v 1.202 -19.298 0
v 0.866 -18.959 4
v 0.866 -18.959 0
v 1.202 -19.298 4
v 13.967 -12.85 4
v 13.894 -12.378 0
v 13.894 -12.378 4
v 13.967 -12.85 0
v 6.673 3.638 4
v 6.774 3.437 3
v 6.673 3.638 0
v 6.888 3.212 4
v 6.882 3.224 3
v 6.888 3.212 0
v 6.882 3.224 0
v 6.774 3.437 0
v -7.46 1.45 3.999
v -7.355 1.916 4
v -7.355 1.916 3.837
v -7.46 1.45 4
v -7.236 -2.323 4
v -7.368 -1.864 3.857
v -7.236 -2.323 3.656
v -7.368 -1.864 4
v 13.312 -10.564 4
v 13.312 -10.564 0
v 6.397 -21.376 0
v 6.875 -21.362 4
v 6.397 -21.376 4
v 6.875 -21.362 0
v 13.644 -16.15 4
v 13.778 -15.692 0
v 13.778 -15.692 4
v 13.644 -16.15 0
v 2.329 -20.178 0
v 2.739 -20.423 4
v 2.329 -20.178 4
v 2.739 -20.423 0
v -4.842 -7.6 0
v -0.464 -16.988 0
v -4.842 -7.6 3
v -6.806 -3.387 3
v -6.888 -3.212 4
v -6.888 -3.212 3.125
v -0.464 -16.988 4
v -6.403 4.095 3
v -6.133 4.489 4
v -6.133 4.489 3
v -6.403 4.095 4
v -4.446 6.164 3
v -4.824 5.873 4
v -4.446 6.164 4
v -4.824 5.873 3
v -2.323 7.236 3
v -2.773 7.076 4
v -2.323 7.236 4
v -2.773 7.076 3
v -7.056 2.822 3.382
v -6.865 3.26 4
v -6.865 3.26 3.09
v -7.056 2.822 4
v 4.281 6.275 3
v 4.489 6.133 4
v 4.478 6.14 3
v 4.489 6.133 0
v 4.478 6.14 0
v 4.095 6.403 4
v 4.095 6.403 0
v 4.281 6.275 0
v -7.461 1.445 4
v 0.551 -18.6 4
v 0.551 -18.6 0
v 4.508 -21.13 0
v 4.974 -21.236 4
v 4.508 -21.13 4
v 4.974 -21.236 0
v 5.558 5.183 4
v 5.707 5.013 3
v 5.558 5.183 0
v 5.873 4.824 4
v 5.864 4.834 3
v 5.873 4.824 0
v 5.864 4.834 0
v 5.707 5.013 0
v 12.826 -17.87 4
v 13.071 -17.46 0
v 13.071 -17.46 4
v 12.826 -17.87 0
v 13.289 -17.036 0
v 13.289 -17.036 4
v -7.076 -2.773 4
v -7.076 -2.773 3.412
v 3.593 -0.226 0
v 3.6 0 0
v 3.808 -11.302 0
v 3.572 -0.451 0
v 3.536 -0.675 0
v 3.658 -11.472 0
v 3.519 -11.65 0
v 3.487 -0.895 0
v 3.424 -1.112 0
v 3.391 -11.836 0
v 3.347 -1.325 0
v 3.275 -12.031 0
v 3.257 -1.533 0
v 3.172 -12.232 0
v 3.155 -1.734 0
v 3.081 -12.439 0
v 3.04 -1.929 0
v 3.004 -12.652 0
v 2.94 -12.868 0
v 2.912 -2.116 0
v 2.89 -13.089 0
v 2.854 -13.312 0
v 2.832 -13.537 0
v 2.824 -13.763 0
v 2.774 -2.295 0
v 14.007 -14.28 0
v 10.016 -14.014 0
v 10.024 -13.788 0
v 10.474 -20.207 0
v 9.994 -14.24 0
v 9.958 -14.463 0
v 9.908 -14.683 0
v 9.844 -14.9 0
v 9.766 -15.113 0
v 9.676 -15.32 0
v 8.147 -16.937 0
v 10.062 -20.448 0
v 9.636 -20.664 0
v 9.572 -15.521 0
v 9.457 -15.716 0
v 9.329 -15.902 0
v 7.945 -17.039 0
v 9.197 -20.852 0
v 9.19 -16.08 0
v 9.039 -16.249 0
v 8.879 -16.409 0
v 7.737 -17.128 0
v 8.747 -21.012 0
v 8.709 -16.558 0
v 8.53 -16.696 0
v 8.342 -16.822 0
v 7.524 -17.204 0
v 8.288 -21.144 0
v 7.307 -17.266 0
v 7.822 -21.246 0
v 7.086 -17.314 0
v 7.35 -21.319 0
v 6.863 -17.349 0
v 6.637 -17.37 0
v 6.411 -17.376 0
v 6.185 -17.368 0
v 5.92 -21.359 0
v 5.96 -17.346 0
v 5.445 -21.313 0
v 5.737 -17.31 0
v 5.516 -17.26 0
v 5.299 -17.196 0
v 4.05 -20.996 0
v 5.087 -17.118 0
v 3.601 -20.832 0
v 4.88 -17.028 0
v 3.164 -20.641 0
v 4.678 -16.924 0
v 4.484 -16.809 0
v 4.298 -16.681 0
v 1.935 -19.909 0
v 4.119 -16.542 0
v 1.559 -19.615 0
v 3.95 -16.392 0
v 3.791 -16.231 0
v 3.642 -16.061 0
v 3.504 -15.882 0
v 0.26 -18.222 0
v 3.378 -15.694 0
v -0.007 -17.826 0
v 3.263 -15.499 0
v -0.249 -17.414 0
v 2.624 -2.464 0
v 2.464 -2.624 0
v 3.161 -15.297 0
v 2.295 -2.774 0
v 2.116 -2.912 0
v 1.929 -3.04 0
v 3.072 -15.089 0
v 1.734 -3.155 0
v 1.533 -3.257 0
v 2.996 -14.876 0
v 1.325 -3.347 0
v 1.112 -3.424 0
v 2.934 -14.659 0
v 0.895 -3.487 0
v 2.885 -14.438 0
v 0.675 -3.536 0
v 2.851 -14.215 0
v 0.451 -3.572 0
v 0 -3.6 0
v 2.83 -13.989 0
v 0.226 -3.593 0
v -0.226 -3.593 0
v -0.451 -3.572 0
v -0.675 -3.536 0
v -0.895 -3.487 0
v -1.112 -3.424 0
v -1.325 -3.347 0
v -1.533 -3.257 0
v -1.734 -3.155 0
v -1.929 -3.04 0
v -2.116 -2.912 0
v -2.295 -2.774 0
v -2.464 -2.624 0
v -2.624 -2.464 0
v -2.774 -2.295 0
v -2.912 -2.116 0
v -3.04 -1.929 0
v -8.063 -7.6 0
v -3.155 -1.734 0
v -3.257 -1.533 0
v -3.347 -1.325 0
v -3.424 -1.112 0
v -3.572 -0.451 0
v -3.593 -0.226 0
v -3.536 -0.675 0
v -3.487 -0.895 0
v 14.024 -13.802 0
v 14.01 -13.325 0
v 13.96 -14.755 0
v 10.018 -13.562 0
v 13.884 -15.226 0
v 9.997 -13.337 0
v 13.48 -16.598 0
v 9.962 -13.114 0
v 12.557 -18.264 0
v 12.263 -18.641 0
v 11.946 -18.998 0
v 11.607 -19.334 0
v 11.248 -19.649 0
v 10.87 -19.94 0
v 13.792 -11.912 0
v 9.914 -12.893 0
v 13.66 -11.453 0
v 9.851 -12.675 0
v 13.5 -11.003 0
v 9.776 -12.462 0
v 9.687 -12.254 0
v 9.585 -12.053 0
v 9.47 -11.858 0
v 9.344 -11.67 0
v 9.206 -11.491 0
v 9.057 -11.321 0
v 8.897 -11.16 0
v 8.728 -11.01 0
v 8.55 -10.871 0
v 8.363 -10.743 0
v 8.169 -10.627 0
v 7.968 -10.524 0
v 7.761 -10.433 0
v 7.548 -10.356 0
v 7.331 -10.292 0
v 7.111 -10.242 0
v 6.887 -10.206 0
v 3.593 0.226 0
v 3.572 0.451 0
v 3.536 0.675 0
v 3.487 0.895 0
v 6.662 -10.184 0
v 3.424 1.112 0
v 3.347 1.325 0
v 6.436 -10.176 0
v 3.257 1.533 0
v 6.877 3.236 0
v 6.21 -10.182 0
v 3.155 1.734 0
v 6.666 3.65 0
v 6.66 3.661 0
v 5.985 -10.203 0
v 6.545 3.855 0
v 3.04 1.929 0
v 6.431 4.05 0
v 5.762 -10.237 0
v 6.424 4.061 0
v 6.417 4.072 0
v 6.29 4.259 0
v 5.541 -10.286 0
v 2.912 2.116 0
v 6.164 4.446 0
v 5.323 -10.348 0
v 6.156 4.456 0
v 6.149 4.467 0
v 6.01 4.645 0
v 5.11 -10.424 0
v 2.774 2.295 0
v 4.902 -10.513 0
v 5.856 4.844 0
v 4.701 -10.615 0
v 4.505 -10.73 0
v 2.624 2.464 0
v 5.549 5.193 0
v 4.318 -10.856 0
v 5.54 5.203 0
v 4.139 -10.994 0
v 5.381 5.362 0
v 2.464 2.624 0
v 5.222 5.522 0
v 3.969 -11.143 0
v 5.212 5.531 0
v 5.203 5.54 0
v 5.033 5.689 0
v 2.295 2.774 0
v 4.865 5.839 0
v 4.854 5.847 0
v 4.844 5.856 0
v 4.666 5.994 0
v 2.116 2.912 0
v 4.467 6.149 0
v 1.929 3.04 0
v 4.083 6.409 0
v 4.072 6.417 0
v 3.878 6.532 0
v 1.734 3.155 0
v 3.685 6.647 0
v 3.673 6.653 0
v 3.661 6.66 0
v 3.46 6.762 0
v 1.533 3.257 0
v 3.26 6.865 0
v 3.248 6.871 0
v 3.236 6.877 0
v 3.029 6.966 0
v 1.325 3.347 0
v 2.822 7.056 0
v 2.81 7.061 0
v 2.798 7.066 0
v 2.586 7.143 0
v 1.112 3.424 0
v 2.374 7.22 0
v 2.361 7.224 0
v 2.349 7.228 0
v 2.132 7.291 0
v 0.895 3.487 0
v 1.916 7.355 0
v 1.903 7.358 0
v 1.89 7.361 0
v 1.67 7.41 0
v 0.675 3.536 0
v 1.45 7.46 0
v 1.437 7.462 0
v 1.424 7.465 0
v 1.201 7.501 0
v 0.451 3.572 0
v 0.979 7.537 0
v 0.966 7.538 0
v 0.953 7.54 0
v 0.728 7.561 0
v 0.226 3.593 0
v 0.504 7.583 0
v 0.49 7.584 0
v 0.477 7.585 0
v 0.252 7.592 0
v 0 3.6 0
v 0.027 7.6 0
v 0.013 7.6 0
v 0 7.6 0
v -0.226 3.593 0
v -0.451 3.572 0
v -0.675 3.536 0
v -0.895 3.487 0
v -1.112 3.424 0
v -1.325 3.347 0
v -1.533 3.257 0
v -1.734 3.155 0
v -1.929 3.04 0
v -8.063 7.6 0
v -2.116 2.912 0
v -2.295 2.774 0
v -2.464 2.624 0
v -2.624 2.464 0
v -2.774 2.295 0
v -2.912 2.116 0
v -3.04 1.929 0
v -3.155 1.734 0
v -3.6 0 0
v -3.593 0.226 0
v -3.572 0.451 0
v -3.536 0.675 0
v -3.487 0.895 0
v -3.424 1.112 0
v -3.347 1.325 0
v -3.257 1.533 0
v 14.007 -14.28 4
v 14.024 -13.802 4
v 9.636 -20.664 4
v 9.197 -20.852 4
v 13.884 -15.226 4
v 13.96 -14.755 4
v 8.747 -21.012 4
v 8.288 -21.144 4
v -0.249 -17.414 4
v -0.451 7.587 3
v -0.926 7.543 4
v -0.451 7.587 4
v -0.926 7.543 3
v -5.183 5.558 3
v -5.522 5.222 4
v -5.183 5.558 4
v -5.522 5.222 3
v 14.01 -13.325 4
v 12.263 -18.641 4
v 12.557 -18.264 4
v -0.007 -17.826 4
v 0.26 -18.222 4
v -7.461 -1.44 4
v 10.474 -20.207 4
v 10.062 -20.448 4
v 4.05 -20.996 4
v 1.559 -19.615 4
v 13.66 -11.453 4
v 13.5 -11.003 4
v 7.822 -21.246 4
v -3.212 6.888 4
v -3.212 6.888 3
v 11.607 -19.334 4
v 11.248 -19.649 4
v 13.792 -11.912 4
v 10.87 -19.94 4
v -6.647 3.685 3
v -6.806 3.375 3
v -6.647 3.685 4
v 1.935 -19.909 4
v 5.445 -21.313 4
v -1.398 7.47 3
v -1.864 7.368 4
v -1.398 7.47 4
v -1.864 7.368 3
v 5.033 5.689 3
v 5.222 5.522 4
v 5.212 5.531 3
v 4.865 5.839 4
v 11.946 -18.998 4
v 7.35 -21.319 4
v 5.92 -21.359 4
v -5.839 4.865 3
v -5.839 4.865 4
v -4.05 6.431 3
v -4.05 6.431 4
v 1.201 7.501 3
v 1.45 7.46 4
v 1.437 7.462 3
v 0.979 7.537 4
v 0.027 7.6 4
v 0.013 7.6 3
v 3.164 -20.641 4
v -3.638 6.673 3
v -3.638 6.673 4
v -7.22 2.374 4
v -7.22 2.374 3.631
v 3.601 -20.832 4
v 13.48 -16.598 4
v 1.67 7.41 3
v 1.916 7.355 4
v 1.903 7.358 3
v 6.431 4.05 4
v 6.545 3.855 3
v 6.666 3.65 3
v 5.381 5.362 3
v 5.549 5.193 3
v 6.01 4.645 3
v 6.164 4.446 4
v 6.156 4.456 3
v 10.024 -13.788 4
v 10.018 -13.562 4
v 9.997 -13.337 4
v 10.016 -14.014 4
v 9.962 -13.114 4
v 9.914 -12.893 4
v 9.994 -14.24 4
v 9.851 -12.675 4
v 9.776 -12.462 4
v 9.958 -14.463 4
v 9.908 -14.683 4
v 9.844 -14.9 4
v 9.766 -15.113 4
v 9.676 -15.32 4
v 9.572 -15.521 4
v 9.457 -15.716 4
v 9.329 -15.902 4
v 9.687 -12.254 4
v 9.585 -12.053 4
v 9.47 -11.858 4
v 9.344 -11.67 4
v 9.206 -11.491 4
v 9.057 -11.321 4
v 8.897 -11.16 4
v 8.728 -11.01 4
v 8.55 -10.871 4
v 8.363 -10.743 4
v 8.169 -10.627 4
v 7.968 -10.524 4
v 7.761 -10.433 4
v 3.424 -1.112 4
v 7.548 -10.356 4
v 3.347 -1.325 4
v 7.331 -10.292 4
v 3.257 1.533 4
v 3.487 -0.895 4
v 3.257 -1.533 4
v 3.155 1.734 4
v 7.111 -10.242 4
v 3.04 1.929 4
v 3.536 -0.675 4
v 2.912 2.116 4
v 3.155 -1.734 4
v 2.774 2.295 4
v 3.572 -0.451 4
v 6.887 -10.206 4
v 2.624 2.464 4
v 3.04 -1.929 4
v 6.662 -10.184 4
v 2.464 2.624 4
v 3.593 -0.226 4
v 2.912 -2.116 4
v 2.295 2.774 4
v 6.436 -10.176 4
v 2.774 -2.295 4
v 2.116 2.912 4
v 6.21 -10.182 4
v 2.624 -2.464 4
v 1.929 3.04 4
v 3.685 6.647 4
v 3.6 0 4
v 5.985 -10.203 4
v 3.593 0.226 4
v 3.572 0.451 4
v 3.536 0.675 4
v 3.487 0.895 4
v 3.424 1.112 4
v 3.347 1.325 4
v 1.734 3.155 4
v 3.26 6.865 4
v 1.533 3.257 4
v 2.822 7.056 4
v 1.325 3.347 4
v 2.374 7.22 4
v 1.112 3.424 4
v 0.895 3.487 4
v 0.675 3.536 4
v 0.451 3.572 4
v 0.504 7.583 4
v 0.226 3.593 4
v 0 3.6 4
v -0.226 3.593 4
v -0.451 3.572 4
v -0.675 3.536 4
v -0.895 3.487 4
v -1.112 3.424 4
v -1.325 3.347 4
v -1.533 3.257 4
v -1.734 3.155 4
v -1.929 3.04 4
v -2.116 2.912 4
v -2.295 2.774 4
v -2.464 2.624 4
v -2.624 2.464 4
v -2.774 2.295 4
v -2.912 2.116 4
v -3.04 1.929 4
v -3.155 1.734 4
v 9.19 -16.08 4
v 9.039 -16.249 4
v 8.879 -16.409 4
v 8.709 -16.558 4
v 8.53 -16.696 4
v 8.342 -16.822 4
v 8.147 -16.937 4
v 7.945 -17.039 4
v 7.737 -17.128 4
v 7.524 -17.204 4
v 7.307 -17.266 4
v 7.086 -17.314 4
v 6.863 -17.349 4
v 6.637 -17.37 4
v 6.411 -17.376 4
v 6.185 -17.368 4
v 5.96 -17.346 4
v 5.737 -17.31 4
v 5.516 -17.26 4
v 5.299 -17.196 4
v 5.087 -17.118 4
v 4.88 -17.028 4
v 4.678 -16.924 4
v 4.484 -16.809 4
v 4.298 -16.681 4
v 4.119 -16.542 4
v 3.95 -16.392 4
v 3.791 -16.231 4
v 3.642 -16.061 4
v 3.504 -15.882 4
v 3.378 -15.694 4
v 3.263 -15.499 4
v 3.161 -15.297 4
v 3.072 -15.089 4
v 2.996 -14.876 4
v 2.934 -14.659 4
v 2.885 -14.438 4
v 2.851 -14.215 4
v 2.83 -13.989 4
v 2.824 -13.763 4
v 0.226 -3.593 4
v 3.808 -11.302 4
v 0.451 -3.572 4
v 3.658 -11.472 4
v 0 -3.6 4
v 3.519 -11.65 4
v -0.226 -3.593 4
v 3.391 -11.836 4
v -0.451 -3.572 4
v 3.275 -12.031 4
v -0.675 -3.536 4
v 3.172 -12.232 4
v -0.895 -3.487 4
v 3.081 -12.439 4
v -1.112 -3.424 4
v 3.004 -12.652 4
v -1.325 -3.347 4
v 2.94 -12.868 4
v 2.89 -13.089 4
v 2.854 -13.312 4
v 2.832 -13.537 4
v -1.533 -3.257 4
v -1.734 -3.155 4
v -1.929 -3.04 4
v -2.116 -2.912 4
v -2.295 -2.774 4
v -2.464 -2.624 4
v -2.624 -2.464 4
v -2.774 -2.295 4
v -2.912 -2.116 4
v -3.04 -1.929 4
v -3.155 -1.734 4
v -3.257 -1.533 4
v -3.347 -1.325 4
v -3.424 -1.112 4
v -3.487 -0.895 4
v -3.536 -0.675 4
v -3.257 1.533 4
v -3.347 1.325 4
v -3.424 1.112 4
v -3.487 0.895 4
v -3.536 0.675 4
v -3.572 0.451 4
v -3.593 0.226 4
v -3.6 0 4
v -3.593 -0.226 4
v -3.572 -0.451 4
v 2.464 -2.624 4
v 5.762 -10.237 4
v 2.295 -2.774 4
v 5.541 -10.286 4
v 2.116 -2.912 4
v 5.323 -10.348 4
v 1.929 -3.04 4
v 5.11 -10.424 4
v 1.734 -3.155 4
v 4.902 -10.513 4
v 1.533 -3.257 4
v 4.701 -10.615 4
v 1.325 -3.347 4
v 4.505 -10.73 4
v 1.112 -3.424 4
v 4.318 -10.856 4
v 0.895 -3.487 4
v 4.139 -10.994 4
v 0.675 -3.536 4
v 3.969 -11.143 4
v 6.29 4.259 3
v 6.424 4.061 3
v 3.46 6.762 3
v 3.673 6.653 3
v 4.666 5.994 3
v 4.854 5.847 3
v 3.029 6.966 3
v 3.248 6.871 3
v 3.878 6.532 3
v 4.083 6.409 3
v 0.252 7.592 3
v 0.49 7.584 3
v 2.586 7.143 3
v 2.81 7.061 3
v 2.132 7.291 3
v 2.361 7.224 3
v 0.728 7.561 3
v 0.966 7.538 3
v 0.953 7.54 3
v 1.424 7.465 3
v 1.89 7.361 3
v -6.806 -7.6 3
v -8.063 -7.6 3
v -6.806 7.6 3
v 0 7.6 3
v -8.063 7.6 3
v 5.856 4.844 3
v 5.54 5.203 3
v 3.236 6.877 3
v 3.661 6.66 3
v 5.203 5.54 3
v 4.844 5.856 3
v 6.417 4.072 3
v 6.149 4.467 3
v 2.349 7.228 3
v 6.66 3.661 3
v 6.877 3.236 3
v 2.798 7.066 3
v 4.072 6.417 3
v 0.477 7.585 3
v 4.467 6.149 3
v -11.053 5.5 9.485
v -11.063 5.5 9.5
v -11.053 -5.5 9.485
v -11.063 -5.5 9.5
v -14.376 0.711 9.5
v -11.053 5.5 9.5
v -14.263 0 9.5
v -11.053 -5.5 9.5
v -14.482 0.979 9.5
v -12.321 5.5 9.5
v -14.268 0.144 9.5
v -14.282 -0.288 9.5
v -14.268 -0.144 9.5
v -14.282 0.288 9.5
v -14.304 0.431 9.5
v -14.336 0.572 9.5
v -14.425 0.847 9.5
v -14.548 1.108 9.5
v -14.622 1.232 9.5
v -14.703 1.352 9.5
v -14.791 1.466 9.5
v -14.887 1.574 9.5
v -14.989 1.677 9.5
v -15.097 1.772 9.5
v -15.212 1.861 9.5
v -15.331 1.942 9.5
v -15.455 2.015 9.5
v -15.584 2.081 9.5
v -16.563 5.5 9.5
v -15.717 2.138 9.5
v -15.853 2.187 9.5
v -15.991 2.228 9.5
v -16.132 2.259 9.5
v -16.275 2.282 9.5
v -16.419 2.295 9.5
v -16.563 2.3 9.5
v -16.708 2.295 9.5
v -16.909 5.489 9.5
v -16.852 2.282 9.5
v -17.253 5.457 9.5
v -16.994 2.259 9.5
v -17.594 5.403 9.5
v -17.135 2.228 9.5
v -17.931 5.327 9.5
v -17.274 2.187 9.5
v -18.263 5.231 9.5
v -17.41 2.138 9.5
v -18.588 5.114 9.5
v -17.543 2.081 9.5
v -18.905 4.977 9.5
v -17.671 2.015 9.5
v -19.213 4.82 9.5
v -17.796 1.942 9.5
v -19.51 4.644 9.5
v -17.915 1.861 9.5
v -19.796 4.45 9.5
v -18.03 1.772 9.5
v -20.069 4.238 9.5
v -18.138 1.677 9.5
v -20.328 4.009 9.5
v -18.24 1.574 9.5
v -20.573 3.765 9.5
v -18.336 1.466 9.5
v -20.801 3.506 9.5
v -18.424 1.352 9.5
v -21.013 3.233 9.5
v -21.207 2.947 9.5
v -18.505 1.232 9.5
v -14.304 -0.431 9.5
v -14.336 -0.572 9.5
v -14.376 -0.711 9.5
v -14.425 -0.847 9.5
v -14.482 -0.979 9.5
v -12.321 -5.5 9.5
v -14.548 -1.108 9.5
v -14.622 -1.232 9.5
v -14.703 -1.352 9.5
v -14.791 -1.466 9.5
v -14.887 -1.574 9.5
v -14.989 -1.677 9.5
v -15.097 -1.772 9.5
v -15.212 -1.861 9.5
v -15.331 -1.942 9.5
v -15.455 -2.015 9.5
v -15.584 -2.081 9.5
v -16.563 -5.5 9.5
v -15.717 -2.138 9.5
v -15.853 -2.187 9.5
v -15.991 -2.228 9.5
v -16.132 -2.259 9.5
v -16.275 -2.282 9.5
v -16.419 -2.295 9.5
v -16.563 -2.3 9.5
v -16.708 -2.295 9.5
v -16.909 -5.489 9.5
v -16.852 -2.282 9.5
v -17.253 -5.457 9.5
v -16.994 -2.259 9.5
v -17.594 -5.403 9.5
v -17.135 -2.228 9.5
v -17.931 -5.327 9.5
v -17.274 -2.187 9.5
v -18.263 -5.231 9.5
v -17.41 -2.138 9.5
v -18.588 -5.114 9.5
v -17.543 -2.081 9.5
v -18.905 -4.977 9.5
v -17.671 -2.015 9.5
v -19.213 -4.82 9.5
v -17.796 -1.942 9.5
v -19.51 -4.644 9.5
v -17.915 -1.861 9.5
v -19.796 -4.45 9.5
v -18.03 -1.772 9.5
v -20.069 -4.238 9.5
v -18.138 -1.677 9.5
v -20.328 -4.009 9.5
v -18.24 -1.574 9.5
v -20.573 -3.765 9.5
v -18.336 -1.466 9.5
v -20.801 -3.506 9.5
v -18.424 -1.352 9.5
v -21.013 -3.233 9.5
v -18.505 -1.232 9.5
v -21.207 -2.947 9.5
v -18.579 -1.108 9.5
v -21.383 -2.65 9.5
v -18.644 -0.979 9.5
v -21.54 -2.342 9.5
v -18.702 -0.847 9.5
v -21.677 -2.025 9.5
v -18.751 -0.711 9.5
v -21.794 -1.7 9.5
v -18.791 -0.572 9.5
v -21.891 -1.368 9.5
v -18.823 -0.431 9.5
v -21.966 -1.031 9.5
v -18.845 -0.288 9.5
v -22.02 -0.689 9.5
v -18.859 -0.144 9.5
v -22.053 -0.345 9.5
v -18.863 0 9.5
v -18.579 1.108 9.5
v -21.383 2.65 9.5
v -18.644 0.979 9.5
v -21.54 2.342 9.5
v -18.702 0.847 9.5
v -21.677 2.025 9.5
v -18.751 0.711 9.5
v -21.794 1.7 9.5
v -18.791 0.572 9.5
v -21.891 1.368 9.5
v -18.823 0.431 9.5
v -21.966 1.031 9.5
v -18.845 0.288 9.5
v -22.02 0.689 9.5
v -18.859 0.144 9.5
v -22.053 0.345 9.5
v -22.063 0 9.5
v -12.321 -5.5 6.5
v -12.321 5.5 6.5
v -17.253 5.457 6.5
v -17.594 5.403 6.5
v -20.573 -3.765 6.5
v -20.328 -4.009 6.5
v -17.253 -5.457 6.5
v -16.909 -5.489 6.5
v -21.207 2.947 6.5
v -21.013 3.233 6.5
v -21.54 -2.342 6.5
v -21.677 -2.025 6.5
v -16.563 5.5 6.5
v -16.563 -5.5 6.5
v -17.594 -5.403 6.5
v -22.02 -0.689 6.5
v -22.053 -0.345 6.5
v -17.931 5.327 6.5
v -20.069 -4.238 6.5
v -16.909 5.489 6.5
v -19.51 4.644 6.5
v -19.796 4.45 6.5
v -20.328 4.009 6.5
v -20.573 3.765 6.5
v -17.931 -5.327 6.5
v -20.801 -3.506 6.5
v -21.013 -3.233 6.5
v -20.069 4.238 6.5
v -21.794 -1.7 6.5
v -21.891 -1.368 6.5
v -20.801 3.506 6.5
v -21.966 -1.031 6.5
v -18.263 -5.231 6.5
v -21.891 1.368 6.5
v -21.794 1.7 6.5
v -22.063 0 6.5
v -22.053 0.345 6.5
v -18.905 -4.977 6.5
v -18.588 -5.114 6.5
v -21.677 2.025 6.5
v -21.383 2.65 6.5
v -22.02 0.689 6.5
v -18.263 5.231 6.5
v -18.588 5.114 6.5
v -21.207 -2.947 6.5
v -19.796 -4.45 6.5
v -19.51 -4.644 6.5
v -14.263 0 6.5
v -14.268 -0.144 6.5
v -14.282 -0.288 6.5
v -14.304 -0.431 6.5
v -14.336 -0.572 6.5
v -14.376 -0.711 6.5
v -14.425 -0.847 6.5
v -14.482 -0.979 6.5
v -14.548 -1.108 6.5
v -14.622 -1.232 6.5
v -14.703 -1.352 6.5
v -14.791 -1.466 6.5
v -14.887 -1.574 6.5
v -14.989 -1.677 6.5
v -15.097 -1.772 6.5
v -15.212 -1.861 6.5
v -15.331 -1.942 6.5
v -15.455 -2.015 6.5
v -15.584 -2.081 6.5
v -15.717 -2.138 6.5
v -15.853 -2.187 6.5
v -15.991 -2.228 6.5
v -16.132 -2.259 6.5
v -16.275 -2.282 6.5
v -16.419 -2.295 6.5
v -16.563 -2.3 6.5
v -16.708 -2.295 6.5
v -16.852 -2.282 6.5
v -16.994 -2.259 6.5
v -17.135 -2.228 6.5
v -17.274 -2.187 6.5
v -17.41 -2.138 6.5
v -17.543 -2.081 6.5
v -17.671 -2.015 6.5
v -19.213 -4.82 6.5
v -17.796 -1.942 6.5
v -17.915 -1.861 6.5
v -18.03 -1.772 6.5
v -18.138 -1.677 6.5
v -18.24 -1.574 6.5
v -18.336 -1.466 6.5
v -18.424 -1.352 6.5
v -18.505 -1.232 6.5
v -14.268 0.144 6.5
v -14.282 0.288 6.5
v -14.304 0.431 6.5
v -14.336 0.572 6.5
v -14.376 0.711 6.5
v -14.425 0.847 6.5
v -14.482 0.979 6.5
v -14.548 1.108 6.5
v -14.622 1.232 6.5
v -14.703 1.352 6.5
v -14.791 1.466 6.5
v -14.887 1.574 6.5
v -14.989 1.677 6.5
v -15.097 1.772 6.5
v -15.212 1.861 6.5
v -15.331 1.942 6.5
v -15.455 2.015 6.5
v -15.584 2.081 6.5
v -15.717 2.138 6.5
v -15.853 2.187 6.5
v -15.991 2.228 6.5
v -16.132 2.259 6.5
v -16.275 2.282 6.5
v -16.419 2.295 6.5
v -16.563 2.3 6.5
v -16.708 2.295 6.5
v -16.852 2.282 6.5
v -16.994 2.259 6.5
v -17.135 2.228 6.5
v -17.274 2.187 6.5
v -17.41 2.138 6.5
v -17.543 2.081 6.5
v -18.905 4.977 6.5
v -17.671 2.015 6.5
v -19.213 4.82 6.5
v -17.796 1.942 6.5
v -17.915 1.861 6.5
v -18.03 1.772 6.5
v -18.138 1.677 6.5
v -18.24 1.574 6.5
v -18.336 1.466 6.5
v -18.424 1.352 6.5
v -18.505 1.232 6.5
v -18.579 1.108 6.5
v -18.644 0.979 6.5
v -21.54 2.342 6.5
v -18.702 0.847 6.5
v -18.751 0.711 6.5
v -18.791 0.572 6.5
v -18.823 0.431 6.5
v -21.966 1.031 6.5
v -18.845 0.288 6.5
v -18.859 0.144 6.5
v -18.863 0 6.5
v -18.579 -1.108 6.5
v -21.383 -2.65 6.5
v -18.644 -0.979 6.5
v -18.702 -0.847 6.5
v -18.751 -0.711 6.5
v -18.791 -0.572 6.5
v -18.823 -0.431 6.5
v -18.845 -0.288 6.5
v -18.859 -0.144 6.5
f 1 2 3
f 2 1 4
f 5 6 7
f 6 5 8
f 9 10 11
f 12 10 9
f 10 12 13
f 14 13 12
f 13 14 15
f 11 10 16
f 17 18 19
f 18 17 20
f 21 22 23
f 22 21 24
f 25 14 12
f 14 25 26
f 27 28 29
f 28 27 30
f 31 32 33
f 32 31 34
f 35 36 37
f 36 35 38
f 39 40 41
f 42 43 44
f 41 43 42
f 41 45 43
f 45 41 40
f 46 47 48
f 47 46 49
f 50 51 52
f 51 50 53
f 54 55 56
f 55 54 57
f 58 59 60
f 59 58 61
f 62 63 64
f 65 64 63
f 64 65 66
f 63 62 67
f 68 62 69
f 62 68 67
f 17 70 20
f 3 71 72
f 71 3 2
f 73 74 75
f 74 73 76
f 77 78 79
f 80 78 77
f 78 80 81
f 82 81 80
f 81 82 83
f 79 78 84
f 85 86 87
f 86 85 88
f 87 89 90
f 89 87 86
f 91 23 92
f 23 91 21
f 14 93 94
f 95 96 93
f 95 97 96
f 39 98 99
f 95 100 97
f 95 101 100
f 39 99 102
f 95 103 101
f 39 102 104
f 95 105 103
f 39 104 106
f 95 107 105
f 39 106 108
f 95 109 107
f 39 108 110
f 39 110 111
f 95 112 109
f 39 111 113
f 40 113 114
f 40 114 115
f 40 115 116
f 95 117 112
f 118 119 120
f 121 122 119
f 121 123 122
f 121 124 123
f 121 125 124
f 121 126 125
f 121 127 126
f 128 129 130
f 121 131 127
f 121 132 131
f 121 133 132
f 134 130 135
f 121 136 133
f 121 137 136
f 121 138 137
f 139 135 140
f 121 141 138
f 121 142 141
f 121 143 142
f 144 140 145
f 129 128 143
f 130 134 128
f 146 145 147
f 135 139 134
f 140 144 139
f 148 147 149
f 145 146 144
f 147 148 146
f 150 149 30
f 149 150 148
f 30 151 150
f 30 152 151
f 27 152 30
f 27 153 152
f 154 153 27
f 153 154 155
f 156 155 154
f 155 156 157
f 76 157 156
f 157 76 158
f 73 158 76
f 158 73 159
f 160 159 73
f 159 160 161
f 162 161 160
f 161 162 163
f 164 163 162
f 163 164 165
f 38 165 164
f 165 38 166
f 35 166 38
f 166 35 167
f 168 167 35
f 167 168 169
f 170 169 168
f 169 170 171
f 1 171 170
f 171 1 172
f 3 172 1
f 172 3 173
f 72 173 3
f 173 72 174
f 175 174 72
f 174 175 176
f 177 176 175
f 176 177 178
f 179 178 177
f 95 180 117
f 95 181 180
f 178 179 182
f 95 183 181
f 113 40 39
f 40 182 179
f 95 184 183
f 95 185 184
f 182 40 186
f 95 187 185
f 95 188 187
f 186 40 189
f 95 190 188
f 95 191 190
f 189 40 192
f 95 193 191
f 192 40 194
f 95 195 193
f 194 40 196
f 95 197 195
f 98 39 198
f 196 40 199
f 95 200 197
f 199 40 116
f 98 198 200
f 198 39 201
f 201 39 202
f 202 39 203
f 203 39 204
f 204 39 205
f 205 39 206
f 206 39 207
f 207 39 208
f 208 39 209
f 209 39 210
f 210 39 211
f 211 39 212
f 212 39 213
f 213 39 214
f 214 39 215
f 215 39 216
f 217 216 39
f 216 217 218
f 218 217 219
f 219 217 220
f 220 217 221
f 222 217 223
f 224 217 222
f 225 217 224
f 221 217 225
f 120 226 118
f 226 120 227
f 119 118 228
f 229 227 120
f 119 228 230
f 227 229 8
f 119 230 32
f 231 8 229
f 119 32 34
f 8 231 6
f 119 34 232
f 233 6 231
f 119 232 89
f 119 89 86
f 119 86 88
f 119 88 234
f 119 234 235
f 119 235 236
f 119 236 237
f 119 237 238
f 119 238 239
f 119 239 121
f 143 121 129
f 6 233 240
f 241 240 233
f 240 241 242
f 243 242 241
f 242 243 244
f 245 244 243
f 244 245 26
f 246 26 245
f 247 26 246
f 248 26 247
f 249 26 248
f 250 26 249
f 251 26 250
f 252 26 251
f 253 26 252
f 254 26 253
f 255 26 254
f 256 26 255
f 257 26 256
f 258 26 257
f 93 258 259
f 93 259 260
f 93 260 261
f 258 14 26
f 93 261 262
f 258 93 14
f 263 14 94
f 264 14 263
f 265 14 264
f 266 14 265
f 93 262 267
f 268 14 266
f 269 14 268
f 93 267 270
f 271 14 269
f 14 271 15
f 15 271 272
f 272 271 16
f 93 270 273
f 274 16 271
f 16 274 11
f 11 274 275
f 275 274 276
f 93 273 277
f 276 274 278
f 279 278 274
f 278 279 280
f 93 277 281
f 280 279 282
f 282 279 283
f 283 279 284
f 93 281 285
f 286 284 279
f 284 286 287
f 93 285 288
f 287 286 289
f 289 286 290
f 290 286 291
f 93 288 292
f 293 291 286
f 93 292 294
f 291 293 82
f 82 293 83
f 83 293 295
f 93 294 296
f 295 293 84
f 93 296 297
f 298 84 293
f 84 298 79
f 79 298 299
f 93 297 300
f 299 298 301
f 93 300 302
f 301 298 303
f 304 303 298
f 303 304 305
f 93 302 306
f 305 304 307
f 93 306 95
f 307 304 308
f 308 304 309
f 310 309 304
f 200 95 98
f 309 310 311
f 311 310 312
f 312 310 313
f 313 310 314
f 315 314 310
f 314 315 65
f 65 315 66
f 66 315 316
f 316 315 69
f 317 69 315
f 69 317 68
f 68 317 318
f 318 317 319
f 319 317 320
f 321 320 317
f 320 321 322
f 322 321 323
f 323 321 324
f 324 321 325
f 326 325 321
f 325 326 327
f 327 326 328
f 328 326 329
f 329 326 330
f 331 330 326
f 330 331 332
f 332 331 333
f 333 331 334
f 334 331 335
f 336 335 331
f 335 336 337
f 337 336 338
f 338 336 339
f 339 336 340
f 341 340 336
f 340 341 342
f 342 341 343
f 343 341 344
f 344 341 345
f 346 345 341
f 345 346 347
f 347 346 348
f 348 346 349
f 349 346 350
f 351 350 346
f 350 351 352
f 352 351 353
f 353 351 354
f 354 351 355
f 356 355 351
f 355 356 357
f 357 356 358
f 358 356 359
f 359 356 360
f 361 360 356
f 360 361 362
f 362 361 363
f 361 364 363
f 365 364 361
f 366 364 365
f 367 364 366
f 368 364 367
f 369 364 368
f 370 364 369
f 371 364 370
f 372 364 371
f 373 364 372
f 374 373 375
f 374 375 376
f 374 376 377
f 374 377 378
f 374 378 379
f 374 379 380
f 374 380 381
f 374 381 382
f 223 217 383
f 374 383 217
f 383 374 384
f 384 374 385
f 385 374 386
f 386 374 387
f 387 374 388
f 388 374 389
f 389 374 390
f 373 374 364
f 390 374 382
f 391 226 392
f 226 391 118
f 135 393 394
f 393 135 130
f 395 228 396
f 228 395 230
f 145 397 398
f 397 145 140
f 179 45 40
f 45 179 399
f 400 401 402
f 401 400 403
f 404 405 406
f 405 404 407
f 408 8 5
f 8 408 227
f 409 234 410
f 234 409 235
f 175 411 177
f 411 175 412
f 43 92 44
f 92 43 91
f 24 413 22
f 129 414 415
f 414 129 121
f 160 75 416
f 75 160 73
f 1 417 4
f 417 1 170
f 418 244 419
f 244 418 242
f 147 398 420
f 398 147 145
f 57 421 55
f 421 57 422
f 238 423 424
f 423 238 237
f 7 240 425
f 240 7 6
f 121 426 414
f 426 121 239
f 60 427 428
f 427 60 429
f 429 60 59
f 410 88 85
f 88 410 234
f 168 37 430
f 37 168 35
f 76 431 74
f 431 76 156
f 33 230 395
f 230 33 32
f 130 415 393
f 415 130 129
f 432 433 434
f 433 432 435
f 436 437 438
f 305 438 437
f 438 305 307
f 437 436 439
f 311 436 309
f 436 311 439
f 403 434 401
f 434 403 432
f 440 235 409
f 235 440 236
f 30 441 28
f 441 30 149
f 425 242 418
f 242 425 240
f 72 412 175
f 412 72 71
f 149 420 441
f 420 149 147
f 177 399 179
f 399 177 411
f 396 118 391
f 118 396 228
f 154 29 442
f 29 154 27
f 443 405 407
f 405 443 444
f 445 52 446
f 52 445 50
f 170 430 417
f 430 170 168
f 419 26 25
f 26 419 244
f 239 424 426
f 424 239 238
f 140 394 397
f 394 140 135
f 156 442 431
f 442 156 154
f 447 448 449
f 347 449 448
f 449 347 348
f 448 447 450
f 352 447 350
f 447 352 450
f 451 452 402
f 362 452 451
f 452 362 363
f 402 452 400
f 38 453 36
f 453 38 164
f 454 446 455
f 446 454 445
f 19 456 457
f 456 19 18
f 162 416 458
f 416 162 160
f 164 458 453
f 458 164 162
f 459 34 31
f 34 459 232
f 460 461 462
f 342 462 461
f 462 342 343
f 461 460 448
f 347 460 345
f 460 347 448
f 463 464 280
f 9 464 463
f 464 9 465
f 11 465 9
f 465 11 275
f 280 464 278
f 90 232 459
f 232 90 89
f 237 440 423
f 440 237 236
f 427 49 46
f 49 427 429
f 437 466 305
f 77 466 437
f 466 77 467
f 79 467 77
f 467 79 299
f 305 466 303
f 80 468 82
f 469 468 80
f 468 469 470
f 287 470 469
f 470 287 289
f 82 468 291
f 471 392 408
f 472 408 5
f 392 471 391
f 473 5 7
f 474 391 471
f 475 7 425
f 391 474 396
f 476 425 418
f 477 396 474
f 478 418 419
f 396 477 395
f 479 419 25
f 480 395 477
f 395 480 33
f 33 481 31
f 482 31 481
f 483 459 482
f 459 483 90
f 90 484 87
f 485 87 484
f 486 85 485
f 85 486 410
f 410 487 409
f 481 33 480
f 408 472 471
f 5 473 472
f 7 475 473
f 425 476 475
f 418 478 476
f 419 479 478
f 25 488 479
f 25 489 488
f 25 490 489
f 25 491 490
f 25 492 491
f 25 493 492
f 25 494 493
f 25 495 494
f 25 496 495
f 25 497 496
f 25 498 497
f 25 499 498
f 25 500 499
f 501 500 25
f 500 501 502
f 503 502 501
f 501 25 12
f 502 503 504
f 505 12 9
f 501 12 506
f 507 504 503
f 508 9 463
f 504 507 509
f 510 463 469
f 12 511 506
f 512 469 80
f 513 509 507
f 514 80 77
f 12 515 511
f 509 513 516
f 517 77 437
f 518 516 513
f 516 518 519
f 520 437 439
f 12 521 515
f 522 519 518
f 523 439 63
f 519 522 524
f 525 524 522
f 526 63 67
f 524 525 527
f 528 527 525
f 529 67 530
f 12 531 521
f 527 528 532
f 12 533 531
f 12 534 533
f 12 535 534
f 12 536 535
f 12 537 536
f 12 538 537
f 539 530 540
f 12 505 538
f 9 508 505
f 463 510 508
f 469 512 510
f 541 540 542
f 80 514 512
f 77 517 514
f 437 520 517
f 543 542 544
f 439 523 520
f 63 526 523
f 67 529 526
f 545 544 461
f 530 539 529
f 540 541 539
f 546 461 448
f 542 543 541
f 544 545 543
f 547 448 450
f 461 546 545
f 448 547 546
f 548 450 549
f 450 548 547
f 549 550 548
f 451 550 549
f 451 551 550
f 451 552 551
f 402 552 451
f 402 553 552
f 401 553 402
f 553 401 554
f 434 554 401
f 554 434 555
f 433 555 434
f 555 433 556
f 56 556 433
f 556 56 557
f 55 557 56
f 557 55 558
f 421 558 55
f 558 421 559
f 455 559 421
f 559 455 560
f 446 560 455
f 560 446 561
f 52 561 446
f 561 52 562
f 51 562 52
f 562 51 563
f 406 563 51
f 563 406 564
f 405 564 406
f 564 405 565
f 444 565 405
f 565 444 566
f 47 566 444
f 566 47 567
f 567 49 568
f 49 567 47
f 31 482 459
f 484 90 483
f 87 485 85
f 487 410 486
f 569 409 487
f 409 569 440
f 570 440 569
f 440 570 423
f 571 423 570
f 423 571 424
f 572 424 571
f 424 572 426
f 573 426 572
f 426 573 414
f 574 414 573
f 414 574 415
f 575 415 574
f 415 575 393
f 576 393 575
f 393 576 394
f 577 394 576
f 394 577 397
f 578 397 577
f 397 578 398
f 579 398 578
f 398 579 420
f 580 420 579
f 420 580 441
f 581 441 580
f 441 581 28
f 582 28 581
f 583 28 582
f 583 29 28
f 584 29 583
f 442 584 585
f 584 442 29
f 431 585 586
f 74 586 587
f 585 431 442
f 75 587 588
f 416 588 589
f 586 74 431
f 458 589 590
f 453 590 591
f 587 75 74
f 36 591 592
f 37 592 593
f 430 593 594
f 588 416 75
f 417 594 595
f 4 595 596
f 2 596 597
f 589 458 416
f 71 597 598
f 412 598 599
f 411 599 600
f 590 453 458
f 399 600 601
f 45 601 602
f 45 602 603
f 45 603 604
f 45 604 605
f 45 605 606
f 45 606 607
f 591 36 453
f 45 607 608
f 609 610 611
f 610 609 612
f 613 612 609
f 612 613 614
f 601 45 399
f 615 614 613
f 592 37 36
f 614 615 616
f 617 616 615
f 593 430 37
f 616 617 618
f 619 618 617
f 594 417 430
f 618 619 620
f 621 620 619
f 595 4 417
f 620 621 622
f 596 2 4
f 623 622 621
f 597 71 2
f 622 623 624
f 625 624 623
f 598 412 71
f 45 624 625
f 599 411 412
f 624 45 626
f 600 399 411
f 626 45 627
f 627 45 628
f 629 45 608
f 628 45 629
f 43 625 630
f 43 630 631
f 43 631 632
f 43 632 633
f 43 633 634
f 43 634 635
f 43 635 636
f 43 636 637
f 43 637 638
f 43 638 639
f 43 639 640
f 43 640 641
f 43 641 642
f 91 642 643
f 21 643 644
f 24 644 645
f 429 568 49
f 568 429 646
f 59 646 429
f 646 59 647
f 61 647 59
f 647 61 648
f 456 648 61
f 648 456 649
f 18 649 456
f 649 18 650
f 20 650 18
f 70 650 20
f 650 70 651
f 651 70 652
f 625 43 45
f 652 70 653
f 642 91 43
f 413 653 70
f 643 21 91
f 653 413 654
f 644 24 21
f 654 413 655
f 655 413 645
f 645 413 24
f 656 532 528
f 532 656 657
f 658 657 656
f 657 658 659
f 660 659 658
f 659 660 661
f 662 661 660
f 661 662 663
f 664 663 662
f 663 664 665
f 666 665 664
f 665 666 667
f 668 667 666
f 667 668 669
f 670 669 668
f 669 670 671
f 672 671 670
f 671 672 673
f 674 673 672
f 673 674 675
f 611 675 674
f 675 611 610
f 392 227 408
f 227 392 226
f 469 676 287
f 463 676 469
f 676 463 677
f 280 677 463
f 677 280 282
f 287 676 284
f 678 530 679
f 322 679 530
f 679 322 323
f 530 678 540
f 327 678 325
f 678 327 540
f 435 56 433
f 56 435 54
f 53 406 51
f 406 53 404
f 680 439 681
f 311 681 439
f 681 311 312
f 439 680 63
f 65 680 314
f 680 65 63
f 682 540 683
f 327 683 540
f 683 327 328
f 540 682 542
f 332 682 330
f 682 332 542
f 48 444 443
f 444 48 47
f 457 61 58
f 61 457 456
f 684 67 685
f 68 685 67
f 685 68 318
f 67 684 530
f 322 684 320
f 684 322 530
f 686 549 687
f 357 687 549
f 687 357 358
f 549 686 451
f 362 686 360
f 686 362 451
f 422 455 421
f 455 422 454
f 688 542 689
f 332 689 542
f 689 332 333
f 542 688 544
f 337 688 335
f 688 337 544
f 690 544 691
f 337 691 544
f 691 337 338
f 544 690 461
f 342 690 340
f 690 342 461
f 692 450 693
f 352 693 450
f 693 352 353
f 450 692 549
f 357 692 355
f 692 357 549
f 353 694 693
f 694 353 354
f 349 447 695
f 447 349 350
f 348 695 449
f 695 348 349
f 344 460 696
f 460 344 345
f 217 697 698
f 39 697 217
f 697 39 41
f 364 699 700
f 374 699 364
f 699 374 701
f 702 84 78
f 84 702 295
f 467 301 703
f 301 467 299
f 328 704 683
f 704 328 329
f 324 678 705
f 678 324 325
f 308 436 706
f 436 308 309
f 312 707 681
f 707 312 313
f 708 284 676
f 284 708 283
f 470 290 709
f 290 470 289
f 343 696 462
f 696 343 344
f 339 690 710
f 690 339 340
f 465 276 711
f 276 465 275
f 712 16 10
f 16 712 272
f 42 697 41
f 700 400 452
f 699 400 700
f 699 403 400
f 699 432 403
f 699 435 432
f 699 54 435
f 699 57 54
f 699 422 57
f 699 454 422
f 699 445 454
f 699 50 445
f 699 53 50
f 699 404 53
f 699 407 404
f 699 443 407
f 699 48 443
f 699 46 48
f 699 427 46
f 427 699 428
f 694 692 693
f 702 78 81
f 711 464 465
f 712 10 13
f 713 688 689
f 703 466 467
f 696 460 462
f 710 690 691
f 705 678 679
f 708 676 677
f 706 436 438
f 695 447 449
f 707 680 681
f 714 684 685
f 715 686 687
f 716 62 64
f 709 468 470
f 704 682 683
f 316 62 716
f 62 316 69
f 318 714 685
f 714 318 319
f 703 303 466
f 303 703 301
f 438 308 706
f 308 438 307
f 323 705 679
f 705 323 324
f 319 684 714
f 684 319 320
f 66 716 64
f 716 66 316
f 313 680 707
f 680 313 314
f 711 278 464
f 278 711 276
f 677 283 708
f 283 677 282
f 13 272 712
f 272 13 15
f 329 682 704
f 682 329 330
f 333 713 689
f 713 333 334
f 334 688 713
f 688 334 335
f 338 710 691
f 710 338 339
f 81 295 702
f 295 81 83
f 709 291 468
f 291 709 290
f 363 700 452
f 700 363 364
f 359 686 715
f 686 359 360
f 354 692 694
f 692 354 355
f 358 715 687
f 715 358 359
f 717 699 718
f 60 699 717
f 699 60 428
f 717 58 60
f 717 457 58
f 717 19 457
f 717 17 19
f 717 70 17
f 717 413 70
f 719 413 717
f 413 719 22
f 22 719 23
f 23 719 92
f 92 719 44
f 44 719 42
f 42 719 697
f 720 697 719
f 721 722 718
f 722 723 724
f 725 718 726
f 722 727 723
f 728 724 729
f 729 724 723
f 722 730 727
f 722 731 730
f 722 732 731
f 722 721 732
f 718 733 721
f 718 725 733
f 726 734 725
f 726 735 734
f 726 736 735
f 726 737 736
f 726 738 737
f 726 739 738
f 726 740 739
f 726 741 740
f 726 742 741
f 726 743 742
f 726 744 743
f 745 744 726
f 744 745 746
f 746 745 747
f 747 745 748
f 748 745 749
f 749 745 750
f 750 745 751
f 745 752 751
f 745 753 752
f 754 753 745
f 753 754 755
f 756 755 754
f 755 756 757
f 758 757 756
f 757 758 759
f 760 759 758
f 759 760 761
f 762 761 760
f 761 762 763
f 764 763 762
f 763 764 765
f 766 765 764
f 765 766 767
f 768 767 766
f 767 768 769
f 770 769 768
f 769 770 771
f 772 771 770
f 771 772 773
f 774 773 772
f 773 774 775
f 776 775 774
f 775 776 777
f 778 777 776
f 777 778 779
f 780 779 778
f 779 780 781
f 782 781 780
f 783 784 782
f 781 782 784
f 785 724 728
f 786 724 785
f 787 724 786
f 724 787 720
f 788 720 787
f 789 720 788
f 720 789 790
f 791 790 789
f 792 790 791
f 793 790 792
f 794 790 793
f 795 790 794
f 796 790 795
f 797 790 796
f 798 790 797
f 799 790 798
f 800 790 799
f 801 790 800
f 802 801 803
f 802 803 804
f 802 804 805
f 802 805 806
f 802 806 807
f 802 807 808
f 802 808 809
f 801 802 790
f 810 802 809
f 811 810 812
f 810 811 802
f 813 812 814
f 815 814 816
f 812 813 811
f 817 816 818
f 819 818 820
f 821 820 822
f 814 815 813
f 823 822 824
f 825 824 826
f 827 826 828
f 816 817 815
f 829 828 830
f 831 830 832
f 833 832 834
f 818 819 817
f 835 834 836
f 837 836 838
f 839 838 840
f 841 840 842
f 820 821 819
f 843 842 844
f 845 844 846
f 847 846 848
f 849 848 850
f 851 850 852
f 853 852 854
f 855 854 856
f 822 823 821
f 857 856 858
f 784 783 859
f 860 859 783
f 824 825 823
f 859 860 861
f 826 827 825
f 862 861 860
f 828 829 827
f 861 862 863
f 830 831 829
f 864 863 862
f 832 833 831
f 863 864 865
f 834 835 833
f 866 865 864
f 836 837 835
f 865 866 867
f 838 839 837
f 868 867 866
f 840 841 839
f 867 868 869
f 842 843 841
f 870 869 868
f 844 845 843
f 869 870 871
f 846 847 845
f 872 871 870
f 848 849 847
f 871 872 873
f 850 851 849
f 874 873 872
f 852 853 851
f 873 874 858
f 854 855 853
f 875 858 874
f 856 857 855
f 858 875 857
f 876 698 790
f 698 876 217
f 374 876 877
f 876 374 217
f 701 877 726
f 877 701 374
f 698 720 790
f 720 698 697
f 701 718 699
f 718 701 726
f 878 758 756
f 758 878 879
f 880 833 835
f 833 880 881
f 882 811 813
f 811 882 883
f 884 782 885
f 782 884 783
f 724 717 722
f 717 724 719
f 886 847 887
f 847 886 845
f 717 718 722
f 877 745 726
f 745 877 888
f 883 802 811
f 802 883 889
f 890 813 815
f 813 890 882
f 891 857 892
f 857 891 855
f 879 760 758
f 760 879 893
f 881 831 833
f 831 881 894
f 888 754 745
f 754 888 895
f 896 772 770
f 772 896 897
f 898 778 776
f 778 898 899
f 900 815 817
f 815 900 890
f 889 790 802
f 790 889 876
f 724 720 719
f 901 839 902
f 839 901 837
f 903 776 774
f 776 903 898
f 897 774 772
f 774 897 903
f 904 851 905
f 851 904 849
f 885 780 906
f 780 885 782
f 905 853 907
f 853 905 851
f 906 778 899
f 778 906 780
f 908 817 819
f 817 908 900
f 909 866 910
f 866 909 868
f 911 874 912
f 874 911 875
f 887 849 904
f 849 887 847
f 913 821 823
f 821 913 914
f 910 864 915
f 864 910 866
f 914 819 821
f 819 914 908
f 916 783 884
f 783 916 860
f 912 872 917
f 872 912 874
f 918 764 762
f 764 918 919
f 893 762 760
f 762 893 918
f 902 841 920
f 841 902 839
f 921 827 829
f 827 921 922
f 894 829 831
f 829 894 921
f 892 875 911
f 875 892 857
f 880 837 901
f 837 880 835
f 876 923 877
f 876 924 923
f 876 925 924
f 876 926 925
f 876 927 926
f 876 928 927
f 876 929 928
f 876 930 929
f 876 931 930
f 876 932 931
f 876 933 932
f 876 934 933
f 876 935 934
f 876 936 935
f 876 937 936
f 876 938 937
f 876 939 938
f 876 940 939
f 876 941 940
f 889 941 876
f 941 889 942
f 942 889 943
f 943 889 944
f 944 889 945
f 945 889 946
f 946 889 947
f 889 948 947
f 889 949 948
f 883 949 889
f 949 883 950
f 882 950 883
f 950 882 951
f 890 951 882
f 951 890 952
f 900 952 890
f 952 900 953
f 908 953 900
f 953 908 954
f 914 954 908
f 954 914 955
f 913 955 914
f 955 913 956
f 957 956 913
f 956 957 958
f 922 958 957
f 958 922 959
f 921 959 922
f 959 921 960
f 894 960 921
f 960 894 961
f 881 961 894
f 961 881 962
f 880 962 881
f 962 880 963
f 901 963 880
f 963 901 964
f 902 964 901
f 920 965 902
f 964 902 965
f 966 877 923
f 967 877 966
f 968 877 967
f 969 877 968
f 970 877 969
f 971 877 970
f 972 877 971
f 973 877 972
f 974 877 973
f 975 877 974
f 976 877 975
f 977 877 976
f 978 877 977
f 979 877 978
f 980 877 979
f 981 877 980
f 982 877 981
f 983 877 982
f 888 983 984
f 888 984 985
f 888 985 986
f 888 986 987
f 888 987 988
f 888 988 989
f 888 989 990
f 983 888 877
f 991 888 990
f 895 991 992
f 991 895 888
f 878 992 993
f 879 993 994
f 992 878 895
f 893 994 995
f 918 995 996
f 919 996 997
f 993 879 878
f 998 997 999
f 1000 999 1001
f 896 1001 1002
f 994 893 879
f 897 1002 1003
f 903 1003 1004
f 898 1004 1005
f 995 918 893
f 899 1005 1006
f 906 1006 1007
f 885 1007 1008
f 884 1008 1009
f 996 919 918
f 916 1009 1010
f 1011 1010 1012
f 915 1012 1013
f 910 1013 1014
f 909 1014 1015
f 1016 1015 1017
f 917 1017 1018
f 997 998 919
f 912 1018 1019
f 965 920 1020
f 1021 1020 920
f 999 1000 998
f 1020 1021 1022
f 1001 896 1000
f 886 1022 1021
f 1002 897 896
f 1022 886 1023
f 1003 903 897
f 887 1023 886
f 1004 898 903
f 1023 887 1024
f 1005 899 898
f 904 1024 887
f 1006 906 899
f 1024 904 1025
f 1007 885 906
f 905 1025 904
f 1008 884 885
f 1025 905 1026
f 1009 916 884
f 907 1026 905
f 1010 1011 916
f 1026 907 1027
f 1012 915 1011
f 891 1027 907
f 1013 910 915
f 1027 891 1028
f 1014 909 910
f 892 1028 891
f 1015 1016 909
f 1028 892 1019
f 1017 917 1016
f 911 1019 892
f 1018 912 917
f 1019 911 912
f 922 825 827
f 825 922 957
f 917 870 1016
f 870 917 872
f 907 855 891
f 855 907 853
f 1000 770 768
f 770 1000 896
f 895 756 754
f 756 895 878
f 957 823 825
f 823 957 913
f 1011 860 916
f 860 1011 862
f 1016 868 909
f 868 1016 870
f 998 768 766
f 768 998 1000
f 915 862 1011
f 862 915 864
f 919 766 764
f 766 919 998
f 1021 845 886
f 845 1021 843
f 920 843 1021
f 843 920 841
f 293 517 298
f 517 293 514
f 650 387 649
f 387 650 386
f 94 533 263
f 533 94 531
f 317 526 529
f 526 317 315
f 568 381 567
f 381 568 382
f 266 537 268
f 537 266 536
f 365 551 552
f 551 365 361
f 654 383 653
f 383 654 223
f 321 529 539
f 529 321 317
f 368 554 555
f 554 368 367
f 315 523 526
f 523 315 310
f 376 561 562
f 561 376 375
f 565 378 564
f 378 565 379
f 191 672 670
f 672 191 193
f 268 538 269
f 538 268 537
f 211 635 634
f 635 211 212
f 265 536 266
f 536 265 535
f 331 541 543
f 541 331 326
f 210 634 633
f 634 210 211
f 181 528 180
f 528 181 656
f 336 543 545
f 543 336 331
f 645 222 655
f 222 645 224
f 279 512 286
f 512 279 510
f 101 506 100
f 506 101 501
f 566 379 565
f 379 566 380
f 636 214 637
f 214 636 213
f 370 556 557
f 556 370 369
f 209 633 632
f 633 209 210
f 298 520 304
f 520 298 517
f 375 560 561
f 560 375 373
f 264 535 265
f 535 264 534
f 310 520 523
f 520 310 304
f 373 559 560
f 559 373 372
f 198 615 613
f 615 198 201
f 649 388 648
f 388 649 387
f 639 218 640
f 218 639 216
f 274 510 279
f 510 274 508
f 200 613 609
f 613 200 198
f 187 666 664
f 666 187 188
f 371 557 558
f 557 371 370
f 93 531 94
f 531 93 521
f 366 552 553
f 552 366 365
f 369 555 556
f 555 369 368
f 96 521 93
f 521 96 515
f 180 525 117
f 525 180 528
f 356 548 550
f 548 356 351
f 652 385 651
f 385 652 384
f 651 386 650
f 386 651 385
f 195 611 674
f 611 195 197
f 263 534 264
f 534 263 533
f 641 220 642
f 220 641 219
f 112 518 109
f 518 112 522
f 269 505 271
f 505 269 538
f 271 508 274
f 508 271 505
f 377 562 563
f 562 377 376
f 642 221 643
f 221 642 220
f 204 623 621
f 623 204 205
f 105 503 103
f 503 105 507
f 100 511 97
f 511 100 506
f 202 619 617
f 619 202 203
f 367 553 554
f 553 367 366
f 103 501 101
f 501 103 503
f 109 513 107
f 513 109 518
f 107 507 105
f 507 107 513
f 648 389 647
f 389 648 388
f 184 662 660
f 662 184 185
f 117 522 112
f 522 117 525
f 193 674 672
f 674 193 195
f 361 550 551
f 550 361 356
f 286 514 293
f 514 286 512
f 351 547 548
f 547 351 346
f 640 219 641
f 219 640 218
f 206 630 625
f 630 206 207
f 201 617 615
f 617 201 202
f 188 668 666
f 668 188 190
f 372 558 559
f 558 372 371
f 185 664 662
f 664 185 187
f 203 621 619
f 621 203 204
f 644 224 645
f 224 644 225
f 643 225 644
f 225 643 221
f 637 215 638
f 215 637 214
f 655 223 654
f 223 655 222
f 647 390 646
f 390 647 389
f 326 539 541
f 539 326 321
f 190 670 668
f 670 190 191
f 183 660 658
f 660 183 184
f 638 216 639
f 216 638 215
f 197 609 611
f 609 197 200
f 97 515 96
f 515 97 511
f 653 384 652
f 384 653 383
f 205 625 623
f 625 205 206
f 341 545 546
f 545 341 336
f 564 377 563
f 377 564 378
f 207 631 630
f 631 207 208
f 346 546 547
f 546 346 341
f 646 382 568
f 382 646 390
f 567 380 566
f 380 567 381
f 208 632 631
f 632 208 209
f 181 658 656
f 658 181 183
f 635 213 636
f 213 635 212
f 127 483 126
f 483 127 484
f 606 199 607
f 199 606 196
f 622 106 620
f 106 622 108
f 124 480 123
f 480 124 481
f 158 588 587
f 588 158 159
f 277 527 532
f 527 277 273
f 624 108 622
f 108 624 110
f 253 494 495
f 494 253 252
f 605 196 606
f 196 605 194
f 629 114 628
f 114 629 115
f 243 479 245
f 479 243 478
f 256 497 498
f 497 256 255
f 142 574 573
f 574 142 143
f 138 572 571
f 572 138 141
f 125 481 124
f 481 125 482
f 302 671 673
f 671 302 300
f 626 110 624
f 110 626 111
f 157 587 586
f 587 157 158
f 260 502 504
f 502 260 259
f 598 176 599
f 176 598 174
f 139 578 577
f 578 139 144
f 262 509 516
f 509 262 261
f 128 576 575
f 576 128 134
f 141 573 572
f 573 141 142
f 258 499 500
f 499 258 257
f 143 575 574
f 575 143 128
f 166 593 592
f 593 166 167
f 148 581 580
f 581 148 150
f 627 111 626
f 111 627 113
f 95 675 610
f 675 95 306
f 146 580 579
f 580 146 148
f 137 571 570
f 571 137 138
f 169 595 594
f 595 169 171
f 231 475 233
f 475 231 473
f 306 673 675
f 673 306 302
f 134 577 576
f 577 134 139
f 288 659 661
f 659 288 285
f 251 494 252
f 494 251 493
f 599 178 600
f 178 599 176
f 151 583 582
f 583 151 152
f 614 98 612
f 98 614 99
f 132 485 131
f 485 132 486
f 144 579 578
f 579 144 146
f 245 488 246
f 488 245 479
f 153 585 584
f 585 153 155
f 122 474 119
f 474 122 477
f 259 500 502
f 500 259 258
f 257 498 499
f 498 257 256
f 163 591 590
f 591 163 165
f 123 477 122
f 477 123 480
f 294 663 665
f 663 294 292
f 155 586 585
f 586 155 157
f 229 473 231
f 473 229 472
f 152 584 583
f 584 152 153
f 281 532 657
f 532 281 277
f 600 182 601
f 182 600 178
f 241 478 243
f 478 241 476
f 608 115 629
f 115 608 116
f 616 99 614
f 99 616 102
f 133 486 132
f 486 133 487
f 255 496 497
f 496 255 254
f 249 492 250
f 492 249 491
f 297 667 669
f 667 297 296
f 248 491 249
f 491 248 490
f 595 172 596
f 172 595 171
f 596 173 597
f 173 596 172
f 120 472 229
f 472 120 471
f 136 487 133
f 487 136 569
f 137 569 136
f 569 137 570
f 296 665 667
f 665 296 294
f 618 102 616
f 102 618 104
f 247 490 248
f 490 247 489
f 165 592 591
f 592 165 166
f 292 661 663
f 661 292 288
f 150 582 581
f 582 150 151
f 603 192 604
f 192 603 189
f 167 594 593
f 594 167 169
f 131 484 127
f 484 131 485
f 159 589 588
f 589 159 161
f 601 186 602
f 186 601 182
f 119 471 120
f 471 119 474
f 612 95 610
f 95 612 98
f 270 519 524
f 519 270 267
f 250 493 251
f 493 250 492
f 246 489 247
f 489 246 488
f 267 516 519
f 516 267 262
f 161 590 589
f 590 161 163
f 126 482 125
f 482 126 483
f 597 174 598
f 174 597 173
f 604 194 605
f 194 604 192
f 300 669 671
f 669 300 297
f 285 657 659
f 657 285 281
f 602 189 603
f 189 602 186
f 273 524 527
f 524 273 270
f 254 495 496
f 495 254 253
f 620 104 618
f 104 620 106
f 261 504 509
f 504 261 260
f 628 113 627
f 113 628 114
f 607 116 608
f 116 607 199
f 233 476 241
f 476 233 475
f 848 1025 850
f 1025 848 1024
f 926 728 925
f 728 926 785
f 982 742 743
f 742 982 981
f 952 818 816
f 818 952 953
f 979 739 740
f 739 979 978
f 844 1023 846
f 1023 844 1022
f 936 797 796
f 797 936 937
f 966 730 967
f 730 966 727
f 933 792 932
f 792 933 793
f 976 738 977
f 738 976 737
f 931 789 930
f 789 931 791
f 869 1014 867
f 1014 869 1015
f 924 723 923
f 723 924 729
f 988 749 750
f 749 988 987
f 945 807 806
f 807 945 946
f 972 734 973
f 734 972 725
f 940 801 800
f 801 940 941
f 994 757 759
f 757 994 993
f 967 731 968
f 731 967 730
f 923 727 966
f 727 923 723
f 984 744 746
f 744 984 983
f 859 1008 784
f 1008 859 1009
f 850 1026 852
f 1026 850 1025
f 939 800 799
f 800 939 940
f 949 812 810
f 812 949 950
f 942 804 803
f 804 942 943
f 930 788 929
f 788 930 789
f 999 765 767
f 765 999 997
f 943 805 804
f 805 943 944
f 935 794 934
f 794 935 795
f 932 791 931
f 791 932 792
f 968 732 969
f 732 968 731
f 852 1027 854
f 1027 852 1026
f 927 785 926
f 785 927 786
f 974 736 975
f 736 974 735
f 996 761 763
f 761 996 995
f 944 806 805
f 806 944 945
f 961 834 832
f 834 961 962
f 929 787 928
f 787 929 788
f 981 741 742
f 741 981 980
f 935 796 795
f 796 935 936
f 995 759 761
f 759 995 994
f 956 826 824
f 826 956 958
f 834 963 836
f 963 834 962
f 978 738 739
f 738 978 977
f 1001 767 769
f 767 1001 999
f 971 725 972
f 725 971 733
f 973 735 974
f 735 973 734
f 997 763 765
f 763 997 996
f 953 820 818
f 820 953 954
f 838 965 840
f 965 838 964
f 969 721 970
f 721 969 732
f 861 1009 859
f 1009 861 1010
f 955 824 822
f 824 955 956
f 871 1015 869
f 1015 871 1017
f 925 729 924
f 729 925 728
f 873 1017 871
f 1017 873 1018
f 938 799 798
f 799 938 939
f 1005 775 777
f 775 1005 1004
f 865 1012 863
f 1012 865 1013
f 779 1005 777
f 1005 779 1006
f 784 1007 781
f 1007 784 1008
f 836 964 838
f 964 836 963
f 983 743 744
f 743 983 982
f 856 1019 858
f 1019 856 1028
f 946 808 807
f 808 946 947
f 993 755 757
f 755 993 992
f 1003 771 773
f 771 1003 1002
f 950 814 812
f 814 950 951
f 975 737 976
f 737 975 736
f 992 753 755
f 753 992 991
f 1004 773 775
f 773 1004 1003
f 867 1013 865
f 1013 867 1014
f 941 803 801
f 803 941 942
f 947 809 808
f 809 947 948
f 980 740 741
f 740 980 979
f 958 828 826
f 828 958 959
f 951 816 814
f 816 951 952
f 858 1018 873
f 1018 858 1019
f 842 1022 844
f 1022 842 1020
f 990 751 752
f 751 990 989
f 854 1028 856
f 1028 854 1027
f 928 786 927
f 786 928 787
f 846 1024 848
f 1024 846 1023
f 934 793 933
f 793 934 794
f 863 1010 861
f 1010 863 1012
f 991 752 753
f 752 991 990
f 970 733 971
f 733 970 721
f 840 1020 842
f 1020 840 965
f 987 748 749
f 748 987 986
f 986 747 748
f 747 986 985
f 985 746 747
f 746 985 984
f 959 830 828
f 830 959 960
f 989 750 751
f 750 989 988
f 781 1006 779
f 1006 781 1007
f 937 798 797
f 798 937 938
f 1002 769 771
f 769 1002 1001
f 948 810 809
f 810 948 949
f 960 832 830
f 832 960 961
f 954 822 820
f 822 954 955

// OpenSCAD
l1 = 15.2;
l2 = 7;
height = 6.5;
rotation = -65;

size = 11;
th = 3;
hole = 2.3;
width = 4;
slope = 3;

r_spacer = 3.6;
h_spacer = 4;

small = 0.01;

angle = atan(height/slope);

$fn = 100;
difference(){
    union(){
        rotate([0, 0, rotation]) hull(){
            cylinder(h_spacer, r_spacer + width, r_spacer + width);
            translate([l1, 0, 0]) cylinder(h_spacer, r_spacer + width, r_spacer + width);
        }
        hull(){
            cylinder(th, r_spacer + width, r_spacer + width);
            translate([slope -(l2/cos(rotation) - size/2), -r_spacer - width, 0]) cube([small, 2*(r_spacer + width), th]);
        }
        translate([-(l2/cos(rotation) - size/2), 0, 0]) hull(){
            translate([slope, -r_spacer - width, 0]) cube([th*cos(angle), 2*(r_spacer + width), th]);
            translate([0, -size/2, height]) mirror([1, 0, 0]) cube([th*cos(angle), size, th]);
        }
        translate([-l2/cos(rotation), 0, height]) hull(){
            cylinder(th, size/2, size/2);
            translate([size/2, -size/2, 0]) cube([small, size, th]);
        }
    }
    cylinder(h_spacer, r_spacer, r_spacer);
    rotate([0, 0, rotation]) translate([l1, 0, 0]) cylinder(h_spacer, r_spacer, r_spacer);
    translate([-l2/cos(rotation), 0, height]) cylinder(th, hole, hole);
}
